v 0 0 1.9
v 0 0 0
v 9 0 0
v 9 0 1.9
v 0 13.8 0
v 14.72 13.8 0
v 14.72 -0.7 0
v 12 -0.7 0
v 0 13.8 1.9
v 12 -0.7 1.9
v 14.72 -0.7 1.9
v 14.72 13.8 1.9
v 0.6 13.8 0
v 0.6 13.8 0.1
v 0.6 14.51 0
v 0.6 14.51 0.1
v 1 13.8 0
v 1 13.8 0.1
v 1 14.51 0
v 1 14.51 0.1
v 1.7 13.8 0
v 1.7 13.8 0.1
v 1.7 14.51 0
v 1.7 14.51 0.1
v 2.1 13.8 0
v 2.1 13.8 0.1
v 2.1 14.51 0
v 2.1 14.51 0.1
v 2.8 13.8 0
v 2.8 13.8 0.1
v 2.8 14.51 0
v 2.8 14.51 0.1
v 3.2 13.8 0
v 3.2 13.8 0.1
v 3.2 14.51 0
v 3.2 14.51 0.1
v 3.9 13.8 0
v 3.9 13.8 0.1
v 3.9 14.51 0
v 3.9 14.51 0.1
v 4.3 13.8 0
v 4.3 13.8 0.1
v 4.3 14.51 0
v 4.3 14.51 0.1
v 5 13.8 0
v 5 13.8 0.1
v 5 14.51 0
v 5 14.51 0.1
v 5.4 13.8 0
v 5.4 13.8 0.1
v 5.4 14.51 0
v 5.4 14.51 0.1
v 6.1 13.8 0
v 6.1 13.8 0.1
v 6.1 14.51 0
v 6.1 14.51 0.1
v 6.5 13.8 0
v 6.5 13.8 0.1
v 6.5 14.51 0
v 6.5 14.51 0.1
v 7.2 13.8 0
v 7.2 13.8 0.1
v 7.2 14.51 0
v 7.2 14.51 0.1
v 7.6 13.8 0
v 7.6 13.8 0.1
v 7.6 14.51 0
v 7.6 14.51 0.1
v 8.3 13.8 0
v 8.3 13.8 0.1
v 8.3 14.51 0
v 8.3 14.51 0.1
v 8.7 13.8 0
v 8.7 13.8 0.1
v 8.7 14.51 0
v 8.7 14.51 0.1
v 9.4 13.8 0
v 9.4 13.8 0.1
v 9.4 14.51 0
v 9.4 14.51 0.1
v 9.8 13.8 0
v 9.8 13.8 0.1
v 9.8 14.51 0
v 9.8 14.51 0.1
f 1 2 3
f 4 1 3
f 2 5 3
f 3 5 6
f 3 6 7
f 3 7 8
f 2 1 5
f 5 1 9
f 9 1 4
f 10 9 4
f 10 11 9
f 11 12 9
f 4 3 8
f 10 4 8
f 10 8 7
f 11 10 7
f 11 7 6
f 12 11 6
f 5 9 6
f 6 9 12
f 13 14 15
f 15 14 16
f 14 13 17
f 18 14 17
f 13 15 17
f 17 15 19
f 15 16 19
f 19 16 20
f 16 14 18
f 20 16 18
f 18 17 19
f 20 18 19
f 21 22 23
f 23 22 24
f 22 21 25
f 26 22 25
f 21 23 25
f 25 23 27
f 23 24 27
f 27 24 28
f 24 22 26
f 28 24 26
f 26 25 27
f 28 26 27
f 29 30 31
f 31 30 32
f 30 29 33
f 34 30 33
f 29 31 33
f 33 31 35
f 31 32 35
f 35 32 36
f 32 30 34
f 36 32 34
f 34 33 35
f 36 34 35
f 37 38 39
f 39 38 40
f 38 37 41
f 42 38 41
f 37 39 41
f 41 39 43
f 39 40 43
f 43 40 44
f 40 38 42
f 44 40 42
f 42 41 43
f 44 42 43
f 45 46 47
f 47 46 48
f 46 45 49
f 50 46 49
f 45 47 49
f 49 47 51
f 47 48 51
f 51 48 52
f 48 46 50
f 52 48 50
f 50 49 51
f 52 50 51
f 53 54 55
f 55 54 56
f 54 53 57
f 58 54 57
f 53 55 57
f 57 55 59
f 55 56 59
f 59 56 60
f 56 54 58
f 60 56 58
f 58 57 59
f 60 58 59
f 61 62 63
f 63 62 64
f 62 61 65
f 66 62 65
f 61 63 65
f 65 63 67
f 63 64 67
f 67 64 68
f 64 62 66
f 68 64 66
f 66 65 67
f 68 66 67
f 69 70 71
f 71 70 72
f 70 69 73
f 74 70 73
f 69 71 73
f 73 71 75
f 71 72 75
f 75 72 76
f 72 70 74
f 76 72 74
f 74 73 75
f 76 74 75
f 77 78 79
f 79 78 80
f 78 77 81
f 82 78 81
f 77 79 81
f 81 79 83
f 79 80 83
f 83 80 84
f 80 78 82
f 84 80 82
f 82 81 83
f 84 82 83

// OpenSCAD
/*
 * Memory_Card_microSD_KNF1110X-AXX082.scad - 3D component for Kicad
 * 
 * Copyright (C) 2014 Theophilus
 *
 * osab
 *
 * License: Matthew 10:8b - "freely ye have received, freely give."
 *
 * Use this information at your own risk.
 *
 */

// begin pin

// end pin
module pin() {
	cube([0.4,0.71,0.1]);
}

linear_extrude(height = 1.9)
polygon(points = [[0,0], [0,13.80], [14.72,13.80], [14.72,-0.7], [12.00,-0.7], [9.00,0.00]]);

start = 0.6;
translate([start,13.80,0]) pin();
translate([start+1*1.1,13.80,0]) pin();
translate([start+2*1.1,13.80,0]) pin();
translate([start+3*1.1,13.80,0]) pin();
translate([start+4*1.1,13.80,0]) pin();
translate([start+5*1.1,13.80,0]) pin();
translate([start+6*1.1,13.80,0]) pin();
translate([start+7*1.1,13.80,0]) pin();
translate([start+8*1.1,13.80,0]) pin();
